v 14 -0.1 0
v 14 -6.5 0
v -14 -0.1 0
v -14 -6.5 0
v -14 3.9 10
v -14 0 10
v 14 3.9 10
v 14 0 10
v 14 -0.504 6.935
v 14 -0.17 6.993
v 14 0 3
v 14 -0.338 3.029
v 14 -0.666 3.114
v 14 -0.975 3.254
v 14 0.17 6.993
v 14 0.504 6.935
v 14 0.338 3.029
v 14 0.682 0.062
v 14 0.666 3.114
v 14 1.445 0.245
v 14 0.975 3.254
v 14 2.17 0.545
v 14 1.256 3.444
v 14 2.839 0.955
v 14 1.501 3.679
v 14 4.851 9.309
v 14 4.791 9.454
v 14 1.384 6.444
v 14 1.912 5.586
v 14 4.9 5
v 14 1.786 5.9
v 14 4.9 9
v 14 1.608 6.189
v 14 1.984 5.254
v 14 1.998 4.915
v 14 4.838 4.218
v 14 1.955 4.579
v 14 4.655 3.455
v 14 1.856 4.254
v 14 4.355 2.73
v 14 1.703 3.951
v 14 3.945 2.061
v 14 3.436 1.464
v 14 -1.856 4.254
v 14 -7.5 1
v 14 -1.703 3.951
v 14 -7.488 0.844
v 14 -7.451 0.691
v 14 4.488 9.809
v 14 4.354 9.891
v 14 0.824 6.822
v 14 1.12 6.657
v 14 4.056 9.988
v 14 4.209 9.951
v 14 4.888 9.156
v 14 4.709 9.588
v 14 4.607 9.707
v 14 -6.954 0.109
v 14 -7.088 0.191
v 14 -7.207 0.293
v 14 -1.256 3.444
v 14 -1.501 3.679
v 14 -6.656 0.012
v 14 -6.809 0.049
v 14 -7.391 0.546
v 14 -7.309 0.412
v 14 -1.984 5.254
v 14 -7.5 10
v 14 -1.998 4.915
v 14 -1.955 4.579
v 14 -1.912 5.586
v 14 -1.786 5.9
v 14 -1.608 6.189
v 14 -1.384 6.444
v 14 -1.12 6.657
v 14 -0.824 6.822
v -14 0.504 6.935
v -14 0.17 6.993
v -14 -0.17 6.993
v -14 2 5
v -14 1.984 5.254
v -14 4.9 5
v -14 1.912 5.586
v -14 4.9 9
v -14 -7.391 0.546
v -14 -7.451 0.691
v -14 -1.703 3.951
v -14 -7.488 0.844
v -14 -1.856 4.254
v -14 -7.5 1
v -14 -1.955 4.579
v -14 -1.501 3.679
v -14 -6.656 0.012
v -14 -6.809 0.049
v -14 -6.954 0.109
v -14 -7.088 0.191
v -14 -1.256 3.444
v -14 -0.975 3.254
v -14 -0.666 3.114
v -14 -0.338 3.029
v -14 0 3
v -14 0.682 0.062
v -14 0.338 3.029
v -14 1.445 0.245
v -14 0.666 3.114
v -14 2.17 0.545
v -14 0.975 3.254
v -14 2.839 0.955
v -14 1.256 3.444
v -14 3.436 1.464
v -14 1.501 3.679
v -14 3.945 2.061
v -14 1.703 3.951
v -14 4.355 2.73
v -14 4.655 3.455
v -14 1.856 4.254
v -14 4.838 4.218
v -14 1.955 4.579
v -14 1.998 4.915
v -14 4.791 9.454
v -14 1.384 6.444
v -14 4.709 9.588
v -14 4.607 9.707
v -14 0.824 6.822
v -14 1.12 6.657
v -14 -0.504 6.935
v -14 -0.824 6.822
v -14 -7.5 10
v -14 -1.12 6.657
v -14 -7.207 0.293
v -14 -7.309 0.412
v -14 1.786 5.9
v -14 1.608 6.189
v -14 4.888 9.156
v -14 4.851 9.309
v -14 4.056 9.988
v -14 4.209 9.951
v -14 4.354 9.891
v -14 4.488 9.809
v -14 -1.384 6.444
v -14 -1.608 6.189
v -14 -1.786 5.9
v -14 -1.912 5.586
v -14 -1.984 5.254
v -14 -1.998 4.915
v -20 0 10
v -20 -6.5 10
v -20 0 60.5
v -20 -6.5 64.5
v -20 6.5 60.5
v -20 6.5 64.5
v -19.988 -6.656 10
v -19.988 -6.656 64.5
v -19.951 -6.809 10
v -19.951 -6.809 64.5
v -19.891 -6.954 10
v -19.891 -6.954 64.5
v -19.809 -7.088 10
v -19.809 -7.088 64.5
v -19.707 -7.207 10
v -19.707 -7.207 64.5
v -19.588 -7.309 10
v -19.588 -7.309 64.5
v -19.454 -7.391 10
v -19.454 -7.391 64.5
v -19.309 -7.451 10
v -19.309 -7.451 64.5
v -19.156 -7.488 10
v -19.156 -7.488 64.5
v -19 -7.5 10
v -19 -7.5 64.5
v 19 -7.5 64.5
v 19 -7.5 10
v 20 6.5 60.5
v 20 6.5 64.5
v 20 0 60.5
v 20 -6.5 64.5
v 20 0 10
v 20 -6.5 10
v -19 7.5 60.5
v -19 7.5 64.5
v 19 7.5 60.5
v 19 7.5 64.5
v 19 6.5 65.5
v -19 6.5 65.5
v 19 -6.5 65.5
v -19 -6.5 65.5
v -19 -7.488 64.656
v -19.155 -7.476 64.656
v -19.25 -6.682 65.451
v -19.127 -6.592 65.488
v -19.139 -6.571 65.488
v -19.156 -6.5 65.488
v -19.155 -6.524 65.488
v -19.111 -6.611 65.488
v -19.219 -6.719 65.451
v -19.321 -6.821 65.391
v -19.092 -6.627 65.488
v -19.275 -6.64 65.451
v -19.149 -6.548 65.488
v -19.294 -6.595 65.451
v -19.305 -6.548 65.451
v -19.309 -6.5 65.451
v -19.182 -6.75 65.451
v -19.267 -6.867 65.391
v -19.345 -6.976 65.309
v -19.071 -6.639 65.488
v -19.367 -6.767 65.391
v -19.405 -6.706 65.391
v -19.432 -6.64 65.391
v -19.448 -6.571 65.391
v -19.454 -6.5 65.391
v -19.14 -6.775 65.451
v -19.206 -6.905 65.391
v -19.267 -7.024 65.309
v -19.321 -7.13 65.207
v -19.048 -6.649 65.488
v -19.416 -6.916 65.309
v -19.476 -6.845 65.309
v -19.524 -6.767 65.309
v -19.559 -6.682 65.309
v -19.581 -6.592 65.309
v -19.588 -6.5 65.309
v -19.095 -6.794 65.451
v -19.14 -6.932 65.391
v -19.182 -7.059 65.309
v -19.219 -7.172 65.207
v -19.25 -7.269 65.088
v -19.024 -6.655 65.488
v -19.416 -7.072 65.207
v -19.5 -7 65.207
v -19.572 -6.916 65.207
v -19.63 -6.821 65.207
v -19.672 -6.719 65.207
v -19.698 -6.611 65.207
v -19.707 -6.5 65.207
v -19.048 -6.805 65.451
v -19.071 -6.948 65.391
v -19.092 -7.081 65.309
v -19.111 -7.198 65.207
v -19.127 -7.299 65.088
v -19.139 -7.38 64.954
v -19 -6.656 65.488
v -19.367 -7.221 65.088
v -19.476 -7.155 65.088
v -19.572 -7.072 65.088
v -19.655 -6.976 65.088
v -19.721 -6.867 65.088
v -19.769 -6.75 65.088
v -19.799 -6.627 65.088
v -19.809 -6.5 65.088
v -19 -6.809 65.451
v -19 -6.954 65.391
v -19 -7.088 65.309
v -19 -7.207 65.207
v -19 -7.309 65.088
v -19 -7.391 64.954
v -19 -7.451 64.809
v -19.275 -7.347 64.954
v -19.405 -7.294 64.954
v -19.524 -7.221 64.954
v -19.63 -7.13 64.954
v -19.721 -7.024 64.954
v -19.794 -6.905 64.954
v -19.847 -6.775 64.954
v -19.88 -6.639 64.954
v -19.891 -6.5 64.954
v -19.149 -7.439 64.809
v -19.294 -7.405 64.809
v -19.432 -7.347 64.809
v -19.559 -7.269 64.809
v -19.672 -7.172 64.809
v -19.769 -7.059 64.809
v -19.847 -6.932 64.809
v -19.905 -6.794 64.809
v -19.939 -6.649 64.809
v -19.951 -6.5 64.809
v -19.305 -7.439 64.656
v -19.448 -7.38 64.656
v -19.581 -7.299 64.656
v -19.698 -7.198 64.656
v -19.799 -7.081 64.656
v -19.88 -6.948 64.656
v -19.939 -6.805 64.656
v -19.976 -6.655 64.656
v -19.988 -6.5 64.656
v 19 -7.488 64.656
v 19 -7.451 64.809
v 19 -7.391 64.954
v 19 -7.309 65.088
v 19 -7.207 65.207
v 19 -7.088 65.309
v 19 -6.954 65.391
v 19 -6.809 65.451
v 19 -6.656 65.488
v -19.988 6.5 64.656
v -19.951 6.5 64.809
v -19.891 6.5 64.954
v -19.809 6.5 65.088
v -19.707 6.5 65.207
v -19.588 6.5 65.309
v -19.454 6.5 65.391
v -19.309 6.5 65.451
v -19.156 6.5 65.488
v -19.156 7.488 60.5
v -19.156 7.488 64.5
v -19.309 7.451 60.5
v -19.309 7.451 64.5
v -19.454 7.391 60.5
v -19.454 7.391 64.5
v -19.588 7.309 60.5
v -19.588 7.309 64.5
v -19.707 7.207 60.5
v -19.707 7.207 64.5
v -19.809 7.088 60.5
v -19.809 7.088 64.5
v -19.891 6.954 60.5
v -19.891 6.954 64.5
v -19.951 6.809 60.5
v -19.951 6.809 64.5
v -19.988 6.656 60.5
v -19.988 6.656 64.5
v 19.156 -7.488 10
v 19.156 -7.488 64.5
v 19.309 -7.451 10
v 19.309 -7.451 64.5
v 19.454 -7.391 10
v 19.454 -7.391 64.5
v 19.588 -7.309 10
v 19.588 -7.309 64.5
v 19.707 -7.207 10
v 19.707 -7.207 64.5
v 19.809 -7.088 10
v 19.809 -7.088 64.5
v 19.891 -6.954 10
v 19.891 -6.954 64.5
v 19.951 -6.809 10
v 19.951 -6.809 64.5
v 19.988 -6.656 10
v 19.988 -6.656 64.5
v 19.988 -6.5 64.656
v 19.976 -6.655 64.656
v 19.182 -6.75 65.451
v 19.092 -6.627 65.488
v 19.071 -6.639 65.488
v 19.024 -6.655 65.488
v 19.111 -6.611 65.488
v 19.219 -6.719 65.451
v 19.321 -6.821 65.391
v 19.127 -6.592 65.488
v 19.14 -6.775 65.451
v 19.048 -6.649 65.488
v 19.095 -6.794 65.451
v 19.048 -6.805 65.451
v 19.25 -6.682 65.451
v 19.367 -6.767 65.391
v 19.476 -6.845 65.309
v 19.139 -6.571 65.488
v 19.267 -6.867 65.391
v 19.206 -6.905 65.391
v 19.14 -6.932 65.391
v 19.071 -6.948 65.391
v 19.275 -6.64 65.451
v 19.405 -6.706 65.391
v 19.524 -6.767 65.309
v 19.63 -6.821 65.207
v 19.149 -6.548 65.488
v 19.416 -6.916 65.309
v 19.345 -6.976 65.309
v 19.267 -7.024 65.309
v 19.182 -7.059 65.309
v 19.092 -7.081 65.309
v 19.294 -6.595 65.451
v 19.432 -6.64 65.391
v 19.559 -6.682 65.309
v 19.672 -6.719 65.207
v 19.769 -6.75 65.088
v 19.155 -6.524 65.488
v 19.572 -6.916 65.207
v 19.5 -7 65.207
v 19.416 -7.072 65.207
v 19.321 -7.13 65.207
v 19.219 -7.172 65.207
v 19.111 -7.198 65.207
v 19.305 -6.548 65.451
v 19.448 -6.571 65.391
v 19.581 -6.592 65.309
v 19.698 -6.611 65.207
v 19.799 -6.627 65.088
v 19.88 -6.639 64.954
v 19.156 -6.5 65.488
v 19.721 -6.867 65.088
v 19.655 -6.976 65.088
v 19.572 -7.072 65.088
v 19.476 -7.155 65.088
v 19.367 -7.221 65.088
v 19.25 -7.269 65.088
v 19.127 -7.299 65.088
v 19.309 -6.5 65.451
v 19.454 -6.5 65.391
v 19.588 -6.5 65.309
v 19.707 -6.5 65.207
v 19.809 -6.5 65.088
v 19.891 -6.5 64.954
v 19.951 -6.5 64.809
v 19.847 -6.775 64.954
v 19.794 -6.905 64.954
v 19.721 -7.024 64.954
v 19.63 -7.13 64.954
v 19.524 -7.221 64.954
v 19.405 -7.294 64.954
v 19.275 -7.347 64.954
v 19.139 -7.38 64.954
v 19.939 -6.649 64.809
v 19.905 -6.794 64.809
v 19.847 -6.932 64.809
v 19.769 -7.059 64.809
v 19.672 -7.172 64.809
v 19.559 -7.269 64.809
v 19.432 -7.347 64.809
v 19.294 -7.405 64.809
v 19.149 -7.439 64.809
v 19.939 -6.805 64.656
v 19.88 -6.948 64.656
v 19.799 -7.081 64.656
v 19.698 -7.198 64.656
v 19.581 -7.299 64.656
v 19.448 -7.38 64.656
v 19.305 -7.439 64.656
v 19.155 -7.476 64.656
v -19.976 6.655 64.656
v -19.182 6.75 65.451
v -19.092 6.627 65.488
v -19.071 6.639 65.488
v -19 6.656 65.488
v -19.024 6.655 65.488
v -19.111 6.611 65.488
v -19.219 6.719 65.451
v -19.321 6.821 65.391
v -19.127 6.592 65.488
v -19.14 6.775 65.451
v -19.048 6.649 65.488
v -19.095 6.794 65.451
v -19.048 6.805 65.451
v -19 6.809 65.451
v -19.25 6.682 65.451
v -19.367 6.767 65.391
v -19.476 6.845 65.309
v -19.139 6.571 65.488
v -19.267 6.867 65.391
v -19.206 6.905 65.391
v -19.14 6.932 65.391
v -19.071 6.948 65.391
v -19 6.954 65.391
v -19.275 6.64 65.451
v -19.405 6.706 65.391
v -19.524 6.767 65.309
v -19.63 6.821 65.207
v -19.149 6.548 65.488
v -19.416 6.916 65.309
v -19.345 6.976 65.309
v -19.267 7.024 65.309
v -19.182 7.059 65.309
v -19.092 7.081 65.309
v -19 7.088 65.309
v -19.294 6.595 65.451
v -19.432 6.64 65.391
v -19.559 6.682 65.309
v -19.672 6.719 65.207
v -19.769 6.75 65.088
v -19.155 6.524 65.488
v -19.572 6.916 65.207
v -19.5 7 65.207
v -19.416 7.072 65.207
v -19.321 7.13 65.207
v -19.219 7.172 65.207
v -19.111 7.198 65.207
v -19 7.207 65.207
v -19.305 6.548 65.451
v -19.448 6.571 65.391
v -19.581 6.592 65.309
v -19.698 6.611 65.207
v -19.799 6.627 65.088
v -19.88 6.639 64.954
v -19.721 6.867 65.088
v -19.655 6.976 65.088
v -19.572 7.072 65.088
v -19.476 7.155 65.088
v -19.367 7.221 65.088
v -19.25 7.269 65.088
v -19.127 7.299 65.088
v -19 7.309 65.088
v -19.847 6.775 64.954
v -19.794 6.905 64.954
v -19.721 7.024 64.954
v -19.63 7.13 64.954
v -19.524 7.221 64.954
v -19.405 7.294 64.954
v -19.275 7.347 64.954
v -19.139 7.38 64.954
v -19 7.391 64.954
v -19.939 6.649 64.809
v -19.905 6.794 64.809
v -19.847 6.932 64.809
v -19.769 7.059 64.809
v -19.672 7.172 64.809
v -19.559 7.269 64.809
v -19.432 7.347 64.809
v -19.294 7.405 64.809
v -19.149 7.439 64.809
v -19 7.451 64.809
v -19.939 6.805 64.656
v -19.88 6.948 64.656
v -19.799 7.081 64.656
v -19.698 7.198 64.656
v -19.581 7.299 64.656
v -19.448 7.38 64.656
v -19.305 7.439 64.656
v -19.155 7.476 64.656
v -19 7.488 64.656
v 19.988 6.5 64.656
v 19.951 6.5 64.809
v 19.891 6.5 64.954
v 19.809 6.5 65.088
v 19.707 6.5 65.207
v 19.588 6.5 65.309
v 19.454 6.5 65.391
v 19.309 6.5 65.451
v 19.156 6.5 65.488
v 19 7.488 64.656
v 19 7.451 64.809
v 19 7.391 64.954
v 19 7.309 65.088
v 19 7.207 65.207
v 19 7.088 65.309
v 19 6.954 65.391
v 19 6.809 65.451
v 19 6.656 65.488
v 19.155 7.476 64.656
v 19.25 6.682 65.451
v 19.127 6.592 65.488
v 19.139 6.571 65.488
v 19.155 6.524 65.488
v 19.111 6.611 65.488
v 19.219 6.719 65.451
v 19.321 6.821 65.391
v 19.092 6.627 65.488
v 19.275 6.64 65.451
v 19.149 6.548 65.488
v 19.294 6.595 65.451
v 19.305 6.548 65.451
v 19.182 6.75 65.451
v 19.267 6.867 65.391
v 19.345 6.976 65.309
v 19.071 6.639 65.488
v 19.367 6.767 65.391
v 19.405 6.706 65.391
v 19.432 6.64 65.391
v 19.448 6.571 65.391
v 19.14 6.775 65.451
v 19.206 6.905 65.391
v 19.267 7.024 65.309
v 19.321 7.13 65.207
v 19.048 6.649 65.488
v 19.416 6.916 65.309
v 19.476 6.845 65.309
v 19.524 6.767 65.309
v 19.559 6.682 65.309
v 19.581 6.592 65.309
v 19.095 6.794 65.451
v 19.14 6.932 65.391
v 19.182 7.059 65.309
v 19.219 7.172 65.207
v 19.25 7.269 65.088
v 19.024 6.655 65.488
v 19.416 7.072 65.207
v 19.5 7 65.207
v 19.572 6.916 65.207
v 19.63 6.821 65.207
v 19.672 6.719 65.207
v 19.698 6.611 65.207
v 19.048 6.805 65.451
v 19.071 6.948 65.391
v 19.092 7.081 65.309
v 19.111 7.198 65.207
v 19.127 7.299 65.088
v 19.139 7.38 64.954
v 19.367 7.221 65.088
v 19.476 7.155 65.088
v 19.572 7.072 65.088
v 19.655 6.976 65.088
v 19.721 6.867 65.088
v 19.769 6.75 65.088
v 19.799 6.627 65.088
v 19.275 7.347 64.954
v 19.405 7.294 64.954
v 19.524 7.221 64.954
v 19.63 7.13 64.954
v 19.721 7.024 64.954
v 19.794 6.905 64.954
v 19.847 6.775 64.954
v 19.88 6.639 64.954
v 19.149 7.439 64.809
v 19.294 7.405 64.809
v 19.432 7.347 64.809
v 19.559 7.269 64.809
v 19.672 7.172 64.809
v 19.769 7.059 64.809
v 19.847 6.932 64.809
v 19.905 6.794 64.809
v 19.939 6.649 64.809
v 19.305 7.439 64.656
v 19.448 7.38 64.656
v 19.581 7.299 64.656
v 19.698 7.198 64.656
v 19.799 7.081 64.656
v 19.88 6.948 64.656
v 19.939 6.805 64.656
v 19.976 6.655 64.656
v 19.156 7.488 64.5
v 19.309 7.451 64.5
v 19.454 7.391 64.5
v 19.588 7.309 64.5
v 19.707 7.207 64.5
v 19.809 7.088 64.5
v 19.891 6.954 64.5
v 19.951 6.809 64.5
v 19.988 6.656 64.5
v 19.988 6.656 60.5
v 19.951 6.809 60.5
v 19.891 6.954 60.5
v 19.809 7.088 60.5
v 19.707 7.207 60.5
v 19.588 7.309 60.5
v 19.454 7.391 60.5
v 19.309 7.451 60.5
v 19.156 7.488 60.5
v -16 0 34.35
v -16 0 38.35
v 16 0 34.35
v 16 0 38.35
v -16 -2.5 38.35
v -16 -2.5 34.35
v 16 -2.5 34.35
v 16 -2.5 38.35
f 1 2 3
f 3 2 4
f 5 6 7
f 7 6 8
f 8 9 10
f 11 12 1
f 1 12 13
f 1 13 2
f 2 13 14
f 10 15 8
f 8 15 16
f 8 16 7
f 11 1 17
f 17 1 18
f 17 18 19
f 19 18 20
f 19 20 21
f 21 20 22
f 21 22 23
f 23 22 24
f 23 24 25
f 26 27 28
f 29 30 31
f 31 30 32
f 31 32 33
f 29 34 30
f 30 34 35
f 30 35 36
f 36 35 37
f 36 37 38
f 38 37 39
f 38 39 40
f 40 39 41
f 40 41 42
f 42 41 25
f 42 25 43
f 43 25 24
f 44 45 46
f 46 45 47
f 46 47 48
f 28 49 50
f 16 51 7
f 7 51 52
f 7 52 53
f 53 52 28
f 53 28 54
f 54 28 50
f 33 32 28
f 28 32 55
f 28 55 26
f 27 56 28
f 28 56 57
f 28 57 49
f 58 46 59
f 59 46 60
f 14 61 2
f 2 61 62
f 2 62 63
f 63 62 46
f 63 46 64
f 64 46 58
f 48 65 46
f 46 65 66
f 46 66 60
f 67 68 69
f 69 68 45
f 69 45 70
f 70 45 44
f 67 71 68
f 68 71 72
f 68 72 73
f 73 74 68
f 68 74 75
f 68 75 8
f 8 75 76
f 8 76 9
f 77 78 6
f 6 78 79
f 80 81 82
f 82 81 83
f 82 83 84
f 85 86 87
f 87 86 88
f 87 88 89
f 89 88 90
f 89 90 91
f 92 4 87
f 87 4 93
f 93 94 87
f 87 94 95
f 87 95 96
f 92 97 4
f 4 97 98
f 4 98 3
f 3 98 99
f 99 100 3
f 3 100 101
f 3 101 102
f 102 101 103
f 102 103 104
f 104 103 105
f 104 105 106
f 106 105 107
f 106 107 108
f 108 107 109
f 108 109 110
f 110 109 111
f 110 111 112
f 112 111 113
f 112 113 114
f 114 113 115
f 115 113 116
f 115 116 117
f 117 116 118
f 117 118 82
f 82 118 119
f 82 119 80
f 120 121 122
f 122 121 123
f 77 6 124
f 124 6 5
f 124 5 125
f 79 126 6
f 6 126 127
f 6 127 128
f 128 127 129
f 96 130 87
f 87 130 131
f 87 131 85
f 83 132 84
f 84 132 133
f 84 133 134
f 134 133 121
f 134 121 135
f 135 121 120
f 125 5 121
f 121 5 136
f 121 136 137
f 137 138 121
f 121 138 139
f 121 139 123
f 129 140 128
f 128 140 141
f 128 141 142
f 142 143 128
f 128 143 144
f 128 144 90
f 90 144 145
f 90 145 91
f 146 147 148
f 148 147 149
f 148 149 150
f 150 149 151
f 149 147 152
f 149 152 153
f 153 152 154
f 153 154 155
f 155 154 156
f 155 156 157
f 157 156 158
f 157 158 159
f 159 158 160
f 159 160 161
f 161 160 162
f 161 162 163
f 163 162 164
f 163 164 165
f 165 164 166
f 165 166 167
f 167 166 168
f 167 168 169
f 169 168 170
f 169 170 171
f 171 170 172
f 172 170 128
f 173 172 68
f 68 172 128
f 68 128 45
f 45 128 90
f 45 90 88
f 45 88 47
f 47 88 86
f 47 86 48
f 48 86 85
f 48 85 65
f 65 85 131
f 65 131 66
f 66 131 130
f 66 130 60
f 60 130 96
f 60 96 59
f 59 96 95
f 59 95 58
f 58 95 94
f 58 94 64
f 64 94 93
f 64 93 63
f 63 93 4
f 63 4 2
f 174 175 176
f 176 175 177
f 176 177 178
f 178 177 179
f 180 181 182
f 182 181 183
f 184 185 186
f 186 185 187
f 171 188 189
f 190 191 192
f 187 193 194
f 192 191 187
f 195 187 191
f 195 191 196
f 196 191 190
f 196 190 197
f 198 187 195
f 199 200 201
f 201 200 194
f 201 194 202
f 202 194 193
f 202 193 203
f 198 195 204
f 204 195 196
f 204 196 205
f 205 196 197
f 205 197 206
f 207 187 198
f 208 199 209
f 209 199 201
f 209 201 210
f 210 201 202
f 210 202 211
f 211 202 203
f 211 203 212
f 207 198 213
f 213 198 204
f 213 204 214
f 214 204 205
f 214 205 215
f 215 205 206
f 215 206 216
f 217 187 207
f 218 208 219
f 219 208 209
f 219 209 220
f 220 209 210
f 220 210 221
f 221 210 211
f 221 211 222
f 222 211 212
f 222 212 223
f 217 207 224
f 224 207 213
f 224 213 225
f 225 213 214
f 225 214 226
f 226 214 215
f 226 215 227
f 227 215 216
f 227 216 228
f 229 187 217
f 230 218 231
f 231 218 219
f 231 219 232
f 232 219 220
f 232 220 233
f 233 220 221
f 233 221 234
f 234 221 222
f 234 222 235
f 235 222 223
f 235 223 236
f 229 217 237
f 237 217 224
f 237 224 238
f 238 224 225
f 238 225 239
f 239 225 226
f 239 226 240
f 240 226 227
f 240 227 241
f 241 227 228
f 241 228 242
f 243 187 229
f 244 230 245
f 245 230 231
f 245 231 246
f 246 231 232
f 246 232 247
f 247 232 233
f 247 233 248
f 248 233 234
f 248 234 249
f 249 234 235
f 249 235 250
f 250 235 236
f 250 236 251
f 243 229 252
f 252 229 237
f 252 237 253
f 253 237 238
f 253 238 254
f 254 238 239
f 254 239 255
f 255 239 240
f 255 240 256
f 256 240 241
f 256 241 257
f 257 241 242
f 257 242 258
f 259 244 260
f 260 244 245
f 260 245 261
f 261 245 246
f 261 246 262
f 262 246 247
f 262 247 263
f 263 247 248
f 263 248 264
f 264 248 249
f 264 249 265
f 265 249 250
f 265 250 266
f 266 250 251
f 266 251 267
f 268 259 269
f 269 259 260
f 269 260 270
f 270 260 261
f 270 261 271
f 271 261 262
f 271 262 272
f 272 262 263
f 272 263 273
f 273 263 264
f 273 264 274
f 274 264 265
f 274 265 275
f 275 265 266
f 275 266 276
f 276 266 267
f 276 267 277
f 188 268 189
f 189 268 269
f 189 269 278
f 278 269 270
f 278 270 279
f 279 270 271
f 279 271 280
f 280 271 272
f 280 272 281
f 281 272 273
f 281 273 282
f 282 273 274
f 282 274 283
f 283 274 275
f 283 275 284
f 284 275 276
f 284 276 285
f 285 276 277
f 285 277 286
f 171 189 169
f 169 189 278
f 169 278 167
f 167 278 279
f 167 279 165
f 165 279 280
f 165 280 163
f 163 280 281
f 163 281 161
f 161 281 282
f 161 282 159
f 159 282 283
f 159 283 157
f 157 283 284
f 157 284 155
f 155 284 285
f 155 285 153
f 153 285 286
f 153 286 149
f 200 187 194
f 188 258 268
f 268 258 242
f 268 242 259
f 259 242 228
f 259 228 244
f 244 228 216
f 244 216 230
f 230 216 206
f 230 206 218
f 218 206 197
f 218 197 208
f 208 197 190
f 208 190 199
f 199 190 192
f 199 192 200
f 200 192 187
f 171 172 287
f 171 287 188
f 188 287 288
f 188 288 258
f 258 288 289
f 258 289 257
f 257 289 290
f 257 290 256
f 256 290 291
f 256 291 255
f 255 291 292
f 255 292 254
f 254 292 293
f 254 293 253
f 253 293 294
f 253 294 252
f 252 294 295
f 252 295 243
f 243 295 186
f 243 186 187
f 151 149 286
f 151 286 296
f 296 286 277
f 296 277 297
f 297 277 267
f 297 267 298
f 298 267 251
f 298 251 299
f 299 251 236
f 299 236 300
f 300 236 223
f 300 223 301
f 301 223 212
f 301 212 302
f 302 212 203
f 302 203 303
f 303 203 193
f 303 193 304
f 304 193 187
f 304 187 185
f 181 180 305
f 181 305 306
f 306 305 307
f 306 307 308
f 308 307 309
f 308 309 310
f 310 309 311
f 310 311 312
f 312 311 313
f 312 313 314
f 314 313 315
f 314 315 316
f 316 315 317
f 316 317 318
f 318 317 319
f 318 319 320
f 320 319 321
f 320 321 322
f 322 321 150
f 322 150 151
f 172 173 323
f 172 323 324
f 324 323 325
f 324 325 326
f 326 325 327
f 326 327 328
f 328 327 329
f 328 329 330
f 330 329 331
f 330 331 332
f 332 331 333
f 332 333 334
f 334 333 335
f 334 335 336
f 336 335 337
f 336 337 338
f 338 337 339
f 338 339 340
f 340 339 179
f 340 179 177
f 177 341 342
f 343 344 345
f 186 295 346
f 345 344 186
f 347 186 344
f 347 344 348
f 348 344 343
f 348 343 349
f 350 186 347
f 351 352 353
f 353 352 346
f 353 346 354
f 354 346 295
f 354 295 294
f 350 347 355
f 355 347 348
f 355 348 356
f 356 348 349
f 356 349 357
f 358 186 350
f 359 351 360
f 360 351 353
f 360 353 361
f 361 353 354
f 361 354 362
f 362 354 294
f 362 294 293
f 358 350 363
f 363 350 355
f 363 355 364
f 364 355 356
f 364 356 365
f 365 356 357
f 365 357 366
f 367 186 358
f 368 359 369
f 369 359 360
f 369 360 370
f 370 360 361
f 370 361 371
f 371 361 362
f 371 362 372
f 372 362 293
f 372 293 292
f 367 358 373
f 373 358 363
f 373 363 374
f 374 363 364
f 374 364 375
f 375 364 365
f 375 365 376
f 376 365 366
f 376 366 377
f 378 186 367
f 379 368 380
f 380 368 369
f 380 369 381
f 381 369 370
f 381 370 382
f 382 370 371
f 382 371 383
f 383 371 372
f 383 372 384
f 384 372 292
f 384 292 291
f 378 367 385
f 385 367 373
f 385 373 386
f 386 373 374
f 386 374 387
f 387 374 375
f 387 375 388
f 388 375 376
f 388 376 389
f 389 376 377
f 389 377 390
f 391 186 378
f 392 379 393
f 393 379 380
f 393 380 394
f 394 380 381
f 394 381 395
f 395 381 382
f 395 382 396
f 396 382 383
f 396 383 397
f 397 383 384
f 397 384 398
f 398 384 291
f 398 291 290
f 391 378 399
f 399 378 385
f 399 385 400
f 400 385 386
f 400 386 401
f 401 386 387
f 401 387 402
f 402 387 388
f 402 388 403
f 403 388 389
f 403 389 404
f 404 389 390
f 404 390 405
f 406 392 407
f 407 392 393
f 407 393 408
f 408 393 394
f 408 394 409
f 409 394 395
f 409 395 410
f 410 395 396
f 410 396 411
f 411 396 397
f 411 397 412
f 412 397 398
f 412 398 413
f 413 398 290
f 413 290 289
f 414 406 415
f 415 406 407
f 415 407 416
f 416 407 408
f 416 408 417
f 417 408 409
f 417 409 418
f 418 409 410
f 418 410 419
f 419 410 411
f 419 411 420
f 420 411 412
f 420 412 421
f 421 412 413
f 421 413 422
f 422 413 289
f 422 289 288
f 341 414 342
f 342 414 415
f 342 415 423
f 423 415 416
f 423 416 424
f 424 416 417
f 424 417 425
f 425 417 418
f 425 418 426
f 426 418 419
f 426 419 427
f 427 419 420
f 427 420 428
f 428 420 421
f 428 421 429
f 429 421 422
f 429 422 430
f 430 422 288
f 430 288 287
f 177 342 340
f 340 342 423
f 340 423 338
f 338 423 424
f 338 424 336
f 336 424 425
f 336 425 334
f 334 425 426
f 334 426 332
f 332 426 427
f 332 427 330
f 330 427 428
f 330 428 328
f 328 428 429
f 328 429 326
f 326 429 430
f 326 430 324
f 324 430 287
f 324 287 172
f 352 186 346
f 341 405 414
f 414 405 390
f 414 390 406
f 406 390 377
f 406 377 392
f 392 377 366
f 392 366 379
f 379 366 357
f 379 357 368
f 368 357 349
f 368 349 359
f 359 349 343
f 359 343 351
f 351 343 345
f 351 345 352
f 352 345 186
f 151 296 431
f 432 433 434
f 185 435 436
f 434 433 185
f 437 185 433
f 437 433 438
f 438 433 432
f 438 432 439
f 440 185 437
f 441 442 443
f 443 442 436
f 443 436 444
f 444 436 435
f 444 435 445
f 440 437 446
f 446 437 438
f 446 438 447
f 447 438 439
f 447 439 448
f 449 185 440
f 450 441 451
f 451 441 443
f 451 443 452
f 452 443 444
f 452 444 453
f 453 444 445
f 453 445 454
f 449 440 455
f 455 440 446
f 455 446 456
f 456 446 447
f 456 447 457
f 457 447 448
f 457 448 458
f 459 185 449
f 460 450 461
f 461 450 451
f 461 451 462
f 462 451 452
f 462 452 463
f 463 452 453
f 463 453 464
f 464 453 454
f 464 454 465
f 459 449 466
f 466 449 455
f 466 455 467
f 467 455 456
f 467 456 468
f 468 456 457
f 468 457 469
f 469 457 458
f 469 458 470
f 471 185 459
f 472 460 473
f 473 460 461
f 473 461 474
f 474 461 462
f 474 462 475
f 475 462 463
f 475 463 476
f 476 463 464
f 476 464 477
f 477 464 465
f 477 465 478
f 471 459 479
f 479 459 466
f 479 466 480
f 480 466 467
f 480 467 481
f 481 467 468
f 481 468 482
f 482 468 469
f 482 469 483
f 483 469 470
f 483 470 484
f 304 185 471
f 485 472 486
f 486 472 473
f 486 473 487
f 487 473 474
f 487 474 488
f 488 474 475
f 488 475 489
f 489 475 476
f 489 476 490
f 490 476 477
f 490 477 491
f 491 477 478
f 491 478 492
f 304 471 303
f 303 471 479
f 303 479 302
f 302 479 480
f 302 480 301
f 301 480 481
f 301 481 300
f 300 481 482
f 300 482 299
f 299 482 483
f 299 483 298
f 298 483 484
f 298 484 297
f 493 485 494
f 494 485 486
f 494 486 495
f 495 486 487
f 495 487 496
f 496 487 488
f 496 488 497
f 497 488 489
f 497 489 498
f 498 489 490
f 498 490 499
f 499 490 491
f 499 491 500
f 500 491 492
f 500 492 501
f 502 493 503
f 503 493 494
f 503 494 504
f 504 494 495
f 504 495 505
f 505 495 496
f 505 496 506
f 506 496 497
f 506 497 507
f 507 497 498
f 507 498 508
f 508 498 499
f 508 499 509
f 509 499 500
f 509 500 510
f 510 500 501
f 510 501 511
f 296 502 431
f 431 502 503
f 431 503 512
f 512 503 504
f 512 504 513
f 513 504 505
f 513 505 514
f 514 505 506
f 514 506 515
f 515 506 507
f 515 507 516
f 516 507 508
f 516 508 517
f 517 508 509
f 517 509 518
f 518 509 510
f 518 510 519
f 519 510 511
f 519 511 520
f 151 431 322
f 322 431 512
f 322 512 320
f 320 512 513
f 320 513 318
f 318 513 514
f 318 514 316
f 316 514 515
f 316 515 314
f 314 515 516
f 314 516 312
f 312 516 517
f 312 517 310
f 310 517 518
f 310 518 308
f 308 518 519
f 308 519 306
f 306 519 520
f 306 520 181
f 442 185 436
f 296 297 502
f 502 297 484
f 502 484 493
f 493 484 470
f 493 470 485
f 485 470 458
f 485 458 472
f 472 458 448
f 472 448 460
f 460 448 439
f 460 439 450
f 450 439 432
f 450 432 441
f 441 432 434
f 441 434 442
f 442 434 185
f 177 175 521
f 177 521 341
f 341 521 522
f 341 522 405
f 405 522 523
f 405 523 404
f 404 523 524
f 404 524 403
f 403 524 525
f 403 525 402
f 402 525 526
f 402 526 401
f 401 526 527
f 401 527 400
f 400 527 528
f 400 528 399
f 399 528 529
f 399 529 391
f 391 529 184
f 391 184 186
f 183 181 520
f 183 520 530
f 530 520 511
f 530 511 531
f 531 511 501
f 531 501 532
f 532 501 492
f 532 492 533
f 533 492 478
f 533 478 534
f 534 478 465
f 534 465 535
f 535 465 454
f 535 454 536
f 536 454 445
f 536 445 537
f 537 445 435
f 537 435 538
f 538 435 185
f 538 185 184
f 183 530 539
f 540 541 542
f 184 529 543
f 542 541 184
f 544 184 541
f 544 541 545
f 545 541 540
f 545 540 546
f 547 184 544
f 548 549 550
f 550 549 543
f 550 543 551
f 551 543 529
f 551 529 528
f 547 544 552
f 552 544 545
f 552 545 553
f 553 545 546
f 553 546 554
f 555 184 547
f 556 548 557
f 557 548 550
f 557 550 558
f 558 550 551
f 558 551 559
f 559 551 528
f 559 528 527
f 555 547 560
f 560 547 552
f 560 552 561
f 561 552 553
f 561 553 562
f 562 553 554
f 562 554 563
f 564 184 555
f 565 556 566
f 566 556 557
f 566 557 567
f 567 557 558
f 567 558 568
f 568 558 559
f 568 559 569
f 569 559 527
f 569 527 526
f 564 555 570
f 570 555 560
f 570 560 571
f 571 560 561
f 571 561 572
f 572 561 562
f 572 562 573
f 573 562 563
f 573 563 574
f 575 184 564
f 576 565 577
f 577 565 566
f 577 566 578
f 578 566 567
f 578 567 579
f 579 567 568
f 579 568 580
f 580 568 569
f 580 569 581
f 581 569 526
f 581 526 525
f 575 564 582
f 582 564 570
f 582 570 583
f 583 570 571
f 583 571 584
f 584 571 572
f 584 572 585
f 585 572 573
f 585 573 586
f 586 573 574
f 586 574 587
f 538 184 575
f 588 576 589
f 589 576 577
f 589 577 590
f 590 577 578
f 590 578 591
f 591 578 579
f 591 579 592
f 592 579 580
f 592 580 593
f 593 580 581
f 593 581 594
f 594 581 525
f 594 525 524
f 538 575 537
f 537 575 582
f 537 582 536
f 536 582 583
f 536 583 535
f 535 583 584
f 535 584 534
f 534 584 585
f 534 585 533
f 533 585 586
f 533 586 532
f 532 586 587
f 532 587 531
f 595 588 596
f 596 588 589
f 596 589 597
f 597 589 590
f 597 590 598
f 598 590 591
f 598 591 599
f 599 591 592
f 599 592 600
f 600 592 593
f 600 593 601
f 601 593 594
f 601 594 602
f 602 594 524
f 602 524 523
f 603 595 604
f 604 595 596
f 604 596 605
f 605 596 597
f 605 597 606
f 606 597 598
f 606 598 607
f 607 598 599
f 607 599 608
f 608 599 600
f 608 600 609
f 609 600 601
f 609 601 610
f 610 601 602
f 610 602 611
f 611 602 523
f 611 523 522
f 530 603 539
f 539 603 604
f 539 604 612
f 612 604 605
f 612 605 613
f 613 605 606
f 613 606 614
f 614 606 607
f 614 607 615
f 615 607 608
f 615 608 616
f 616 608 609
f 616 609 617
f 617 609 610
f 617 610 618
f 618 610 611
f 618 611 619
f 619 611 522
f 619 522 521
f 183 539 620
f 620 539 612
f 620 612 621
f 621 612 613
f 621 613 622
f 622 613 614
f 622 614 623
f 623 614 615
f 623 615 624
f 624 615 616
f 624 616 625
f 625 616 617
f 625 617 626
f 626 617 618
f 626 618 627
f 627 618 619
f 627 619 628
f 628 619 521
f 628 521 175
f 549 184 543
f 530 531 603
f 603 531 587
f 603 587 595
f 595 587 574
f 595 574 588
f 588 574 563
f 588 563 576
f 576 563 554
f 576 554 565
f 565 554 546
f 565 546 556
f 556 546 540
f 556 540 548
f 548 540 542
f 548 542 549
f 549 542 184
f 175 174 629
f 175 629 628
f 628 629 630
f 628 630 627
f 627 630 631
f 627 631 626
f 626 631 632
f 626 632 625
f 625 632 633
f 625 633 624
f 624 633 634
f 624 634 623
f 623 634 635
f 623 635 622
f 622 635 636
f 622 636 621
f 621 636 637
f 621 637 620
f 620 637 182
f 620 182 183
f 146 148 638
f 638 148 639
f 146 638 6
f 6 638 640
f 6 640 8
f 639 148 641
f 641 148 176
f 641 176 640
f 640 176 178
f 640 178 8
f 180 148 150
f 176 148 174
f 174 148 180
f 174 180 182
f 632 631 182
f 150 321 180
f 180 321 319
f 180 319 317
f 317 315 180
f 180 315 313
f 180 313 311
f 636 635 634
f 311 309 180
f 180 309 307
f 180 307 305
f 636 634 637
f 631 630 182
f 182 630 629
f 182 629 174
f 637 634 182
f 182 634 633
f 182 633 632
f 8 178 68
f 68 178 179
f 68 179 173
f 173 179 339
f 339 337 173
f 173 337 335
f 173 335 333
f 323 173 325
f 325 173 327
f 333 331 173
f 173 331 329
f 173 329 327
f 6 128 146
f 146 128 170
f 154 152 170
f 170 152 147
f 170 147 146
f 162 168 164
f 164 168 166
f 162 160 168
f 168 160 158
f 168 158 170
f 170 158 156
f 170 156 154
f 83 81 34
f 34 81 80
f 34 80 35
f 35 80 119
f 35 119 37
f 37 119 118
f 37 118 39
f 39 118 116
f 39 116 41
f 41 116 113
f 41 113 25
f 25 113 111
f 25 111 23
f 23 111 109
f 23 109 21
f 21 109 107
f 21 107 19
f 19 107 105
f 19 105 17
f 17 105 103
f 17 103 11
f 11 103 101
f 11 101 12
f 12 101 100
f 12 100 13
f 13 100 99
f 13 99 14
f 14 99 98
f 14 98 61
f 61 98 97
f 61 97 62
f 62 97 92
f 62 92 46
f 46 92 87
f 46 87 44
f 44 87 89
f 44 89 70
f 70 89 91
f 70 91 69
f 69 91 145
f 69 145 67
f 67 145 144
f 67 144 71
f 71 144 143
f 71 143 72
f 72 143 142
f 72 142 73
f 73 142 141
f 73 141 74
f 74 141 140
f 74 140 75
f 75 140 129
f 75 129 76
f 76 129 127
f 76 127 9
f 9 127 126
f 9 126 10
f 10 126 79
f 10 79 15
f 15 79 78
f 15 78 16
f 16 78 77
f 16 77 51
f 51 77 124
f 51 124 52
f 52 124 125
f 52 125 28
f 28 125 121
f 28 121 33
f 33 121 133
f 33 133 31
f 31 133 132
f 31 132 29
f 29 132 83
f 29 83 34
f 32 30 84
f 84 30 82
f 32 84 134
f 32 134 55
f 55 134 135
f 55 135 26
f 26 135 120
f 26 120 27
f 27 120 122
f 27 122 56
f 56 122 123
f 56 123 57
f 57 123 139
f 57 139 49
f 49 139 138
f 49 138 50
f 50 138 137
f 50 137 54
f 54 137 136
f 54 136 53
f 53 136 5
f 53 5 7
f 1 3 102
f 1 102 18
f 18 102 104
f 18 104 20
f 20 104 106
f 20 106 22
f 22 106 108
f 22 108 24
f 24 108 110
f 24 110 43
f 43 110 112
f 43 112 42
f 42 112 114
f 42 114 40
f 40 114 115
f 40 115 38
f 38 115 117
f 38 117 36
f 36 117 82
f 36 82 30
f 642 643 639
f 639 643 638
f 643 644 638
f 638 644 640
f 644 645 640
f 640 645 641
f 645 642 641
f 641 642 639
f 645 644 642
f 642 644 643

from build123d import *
from OCP.BRepFilletAPI import BRepFilletAPI_MakeFillet

# Parameters (mm, degrees)
CROQUIS2_W                 = 40
CROQUIS2_H                 = 15
SALIENTE_EXTRUIR1_DEPTH    = 65.5
REDONDEO1_R                = 1
CORTAR_EXTRUIR1_DEPTH      = 40
CORTAR_EXTRUIR4_DEPTH      = 1
CORTAR_EXTRUIR4_DEPTH_BACK = 10
CROQUIS9_W                 = 6
CROQUIS9_H                 = 15
CROQUIS10_W                = 6
CROQUIS10_H                = 15
CORTAR_EXTRUIR5_DEPTH      = 10
CROQUIS7_R                 = 2
CORTAR_EXTRUIR6_DEPTH      = 40
CROQUIS14_W                = 40.000001659
CROQUIS14_H                = 60.5
CORTAR_EXTRUIR9_DEPTH      = 2.6
REDONDEO5_R1               = 5
REDONDEO5_R2               = 1
CROQUIS16_W                = 32
CROQUIS16_H                = 4
CORTAR_EXTRUIR10_DEPTH     = 2.5


with BuildPart() as part:
    # Croquis2 → Saliente-Extruir1 (new body)
    with BuildSketch(Plane.XY):
        Rectangle(CROQUIS2_W, CROQUIS2_H)
    extrude(amount=SALIENTE_EXTRUIR1_DEPTH)

    # Redondeo1
    redondeo1_edges = [part.edges().sort_by_distance(p)[0] for p in [
        (-20, 0, 65.5),
        (0, -7.5, 65.5),
        (20, 0, 65.5),
        (0, -7.5, 0),
        (-20, 0, 0),
        (0, 7.5, 0),
        (20, 0, 0),
        (0, 7.5, 65.5),
        (20, -7.5, 32.75),
        (-20, -7.5, 32.75),
        (-20, 7.5, 32.75),
        (20, 7.5, 32.75),
    ]]
    fillet(redondeo1_edges, radius=REDONDEO1_R)

    # Croquis6 → Cortar-Extruir1 (cut)
    with BuildSketch(Plane(origin=(20, 0, 0), x_dir=(0, 0, -1), z_dir=(1, 0, 0))):
        Polygon((-60.5, 7.5), (-60.5, 0), (-55.501553512, 0), (-10, 0), (-10, 5), (-10, 7.5), align=None)
    extrude(amount=-CORTAR_EXTRUIR1_DEPTH, mode=Mode.SUBTRACT)

    # Croquis9 → Cortar-Extruir4 (cut, two sides: drawn at the far end of the back side and taken through both)
    with BuildSketch(Plane(origin=(0, 0, 0), x_dir=(-1, 0, 0), z_dir=(0, 0, -1)).offset(-CORTAR_EXTRUIR4_DEPTH_BACK)):
        with Locations((-17, 0)):
            Rectangle(CROQUIS9_W, CROQUIS9_H)
    extrude(amount=CORTAR_EXTRUIR4_DEPTH + CORTAR_EXTRUIR4_DEPTH_BACK, mode=Mode.SUBTRACT)

    # Croquis10 → Cortar-Extruir5 (cut)
    with BuildSketch(Plane(origin=(0, 0, 0), x_dir=(-1, 0, 0), z_dir=(0, 0, -1))):
        with Locations((17, 0)):
            Rectangle(CROQUIS10_W, CROQUIS10_H)
    extrude(amount=-CORTAR_EXTRUIR5_DEPTH, mode=Mode.SUBTRACT)

    # Croquis7 → Cortar-Extruir6 (cut)
    with BuildSketch(Plane(origin=(20, 0, 0), x_dir=(0, 0, -1), z_dir=(1, 0, 0))):
        with Locations((-5, 0)):
            Circle(CROQUIS7_R)
    extrude(amount=-CORTAR_EXTRUIR6_DEPTH, mode=Mode.SUBTRACT)

    # Croquis14 → Cortar-Extruir9 (cut)
    with BuildSketch(Plane(origin=(0, 7.5, 0), x_dir=(1, 0, 0), z_dir=(0, 1, 0))):
        with Locations((8.3e-07, -30.25)):
            Rectangle(CROQUIS14_W, CROQUIS14_H)
    extrude(amount=-CORTAR_EXTRUIR9_DEPTH, mode=Mode.SUBTRACT)

    # Redondeo5: one fillet with a radius per group of edges: ONE call of the kernel's fillet builder (fillet() takes one radius for all edges)
    redondeo5_edges_1 = [part.edges().sort_by_distance(p)[0] for p in [
        (0, 4.9, 0),
    ]]
    redondeo5_edges_2 = [part.edges().sort_by_distance(p)[0] for p in [
        (0, 4.9, 10),
    ]]
    redondeo5 = BRepFilletAPI_MakeFillet(part.part.solid().wrapped)
    for e in redondeo5_edges_1:
        redondeo5.Add(REDONDEO5_R1, e.wrapped)
    for e in redondeo5_edges_2:
        redondeo5.Add(REDONDEO5_R2, e.wrapped)
    add(Compound.cast(redondeo5.Shape()), mode=Mode.REPLACE)

    # Croquis16 → Cortar-Extruir10 (cut)
    with BuildSketch(Plane(origin=(0, 0, 0), x_dir=(1, 0, 0), z_dir=(0, 1, 0))):
        with Locations((0, -36.35)):
            Rectangle(CROQUIS16_W, CROQUIS16_H)
    extrude(amount=-CORTAR_EXTRUIR10_DEPTH, mode=Mode.SUBTRACT)


solid = part.part
